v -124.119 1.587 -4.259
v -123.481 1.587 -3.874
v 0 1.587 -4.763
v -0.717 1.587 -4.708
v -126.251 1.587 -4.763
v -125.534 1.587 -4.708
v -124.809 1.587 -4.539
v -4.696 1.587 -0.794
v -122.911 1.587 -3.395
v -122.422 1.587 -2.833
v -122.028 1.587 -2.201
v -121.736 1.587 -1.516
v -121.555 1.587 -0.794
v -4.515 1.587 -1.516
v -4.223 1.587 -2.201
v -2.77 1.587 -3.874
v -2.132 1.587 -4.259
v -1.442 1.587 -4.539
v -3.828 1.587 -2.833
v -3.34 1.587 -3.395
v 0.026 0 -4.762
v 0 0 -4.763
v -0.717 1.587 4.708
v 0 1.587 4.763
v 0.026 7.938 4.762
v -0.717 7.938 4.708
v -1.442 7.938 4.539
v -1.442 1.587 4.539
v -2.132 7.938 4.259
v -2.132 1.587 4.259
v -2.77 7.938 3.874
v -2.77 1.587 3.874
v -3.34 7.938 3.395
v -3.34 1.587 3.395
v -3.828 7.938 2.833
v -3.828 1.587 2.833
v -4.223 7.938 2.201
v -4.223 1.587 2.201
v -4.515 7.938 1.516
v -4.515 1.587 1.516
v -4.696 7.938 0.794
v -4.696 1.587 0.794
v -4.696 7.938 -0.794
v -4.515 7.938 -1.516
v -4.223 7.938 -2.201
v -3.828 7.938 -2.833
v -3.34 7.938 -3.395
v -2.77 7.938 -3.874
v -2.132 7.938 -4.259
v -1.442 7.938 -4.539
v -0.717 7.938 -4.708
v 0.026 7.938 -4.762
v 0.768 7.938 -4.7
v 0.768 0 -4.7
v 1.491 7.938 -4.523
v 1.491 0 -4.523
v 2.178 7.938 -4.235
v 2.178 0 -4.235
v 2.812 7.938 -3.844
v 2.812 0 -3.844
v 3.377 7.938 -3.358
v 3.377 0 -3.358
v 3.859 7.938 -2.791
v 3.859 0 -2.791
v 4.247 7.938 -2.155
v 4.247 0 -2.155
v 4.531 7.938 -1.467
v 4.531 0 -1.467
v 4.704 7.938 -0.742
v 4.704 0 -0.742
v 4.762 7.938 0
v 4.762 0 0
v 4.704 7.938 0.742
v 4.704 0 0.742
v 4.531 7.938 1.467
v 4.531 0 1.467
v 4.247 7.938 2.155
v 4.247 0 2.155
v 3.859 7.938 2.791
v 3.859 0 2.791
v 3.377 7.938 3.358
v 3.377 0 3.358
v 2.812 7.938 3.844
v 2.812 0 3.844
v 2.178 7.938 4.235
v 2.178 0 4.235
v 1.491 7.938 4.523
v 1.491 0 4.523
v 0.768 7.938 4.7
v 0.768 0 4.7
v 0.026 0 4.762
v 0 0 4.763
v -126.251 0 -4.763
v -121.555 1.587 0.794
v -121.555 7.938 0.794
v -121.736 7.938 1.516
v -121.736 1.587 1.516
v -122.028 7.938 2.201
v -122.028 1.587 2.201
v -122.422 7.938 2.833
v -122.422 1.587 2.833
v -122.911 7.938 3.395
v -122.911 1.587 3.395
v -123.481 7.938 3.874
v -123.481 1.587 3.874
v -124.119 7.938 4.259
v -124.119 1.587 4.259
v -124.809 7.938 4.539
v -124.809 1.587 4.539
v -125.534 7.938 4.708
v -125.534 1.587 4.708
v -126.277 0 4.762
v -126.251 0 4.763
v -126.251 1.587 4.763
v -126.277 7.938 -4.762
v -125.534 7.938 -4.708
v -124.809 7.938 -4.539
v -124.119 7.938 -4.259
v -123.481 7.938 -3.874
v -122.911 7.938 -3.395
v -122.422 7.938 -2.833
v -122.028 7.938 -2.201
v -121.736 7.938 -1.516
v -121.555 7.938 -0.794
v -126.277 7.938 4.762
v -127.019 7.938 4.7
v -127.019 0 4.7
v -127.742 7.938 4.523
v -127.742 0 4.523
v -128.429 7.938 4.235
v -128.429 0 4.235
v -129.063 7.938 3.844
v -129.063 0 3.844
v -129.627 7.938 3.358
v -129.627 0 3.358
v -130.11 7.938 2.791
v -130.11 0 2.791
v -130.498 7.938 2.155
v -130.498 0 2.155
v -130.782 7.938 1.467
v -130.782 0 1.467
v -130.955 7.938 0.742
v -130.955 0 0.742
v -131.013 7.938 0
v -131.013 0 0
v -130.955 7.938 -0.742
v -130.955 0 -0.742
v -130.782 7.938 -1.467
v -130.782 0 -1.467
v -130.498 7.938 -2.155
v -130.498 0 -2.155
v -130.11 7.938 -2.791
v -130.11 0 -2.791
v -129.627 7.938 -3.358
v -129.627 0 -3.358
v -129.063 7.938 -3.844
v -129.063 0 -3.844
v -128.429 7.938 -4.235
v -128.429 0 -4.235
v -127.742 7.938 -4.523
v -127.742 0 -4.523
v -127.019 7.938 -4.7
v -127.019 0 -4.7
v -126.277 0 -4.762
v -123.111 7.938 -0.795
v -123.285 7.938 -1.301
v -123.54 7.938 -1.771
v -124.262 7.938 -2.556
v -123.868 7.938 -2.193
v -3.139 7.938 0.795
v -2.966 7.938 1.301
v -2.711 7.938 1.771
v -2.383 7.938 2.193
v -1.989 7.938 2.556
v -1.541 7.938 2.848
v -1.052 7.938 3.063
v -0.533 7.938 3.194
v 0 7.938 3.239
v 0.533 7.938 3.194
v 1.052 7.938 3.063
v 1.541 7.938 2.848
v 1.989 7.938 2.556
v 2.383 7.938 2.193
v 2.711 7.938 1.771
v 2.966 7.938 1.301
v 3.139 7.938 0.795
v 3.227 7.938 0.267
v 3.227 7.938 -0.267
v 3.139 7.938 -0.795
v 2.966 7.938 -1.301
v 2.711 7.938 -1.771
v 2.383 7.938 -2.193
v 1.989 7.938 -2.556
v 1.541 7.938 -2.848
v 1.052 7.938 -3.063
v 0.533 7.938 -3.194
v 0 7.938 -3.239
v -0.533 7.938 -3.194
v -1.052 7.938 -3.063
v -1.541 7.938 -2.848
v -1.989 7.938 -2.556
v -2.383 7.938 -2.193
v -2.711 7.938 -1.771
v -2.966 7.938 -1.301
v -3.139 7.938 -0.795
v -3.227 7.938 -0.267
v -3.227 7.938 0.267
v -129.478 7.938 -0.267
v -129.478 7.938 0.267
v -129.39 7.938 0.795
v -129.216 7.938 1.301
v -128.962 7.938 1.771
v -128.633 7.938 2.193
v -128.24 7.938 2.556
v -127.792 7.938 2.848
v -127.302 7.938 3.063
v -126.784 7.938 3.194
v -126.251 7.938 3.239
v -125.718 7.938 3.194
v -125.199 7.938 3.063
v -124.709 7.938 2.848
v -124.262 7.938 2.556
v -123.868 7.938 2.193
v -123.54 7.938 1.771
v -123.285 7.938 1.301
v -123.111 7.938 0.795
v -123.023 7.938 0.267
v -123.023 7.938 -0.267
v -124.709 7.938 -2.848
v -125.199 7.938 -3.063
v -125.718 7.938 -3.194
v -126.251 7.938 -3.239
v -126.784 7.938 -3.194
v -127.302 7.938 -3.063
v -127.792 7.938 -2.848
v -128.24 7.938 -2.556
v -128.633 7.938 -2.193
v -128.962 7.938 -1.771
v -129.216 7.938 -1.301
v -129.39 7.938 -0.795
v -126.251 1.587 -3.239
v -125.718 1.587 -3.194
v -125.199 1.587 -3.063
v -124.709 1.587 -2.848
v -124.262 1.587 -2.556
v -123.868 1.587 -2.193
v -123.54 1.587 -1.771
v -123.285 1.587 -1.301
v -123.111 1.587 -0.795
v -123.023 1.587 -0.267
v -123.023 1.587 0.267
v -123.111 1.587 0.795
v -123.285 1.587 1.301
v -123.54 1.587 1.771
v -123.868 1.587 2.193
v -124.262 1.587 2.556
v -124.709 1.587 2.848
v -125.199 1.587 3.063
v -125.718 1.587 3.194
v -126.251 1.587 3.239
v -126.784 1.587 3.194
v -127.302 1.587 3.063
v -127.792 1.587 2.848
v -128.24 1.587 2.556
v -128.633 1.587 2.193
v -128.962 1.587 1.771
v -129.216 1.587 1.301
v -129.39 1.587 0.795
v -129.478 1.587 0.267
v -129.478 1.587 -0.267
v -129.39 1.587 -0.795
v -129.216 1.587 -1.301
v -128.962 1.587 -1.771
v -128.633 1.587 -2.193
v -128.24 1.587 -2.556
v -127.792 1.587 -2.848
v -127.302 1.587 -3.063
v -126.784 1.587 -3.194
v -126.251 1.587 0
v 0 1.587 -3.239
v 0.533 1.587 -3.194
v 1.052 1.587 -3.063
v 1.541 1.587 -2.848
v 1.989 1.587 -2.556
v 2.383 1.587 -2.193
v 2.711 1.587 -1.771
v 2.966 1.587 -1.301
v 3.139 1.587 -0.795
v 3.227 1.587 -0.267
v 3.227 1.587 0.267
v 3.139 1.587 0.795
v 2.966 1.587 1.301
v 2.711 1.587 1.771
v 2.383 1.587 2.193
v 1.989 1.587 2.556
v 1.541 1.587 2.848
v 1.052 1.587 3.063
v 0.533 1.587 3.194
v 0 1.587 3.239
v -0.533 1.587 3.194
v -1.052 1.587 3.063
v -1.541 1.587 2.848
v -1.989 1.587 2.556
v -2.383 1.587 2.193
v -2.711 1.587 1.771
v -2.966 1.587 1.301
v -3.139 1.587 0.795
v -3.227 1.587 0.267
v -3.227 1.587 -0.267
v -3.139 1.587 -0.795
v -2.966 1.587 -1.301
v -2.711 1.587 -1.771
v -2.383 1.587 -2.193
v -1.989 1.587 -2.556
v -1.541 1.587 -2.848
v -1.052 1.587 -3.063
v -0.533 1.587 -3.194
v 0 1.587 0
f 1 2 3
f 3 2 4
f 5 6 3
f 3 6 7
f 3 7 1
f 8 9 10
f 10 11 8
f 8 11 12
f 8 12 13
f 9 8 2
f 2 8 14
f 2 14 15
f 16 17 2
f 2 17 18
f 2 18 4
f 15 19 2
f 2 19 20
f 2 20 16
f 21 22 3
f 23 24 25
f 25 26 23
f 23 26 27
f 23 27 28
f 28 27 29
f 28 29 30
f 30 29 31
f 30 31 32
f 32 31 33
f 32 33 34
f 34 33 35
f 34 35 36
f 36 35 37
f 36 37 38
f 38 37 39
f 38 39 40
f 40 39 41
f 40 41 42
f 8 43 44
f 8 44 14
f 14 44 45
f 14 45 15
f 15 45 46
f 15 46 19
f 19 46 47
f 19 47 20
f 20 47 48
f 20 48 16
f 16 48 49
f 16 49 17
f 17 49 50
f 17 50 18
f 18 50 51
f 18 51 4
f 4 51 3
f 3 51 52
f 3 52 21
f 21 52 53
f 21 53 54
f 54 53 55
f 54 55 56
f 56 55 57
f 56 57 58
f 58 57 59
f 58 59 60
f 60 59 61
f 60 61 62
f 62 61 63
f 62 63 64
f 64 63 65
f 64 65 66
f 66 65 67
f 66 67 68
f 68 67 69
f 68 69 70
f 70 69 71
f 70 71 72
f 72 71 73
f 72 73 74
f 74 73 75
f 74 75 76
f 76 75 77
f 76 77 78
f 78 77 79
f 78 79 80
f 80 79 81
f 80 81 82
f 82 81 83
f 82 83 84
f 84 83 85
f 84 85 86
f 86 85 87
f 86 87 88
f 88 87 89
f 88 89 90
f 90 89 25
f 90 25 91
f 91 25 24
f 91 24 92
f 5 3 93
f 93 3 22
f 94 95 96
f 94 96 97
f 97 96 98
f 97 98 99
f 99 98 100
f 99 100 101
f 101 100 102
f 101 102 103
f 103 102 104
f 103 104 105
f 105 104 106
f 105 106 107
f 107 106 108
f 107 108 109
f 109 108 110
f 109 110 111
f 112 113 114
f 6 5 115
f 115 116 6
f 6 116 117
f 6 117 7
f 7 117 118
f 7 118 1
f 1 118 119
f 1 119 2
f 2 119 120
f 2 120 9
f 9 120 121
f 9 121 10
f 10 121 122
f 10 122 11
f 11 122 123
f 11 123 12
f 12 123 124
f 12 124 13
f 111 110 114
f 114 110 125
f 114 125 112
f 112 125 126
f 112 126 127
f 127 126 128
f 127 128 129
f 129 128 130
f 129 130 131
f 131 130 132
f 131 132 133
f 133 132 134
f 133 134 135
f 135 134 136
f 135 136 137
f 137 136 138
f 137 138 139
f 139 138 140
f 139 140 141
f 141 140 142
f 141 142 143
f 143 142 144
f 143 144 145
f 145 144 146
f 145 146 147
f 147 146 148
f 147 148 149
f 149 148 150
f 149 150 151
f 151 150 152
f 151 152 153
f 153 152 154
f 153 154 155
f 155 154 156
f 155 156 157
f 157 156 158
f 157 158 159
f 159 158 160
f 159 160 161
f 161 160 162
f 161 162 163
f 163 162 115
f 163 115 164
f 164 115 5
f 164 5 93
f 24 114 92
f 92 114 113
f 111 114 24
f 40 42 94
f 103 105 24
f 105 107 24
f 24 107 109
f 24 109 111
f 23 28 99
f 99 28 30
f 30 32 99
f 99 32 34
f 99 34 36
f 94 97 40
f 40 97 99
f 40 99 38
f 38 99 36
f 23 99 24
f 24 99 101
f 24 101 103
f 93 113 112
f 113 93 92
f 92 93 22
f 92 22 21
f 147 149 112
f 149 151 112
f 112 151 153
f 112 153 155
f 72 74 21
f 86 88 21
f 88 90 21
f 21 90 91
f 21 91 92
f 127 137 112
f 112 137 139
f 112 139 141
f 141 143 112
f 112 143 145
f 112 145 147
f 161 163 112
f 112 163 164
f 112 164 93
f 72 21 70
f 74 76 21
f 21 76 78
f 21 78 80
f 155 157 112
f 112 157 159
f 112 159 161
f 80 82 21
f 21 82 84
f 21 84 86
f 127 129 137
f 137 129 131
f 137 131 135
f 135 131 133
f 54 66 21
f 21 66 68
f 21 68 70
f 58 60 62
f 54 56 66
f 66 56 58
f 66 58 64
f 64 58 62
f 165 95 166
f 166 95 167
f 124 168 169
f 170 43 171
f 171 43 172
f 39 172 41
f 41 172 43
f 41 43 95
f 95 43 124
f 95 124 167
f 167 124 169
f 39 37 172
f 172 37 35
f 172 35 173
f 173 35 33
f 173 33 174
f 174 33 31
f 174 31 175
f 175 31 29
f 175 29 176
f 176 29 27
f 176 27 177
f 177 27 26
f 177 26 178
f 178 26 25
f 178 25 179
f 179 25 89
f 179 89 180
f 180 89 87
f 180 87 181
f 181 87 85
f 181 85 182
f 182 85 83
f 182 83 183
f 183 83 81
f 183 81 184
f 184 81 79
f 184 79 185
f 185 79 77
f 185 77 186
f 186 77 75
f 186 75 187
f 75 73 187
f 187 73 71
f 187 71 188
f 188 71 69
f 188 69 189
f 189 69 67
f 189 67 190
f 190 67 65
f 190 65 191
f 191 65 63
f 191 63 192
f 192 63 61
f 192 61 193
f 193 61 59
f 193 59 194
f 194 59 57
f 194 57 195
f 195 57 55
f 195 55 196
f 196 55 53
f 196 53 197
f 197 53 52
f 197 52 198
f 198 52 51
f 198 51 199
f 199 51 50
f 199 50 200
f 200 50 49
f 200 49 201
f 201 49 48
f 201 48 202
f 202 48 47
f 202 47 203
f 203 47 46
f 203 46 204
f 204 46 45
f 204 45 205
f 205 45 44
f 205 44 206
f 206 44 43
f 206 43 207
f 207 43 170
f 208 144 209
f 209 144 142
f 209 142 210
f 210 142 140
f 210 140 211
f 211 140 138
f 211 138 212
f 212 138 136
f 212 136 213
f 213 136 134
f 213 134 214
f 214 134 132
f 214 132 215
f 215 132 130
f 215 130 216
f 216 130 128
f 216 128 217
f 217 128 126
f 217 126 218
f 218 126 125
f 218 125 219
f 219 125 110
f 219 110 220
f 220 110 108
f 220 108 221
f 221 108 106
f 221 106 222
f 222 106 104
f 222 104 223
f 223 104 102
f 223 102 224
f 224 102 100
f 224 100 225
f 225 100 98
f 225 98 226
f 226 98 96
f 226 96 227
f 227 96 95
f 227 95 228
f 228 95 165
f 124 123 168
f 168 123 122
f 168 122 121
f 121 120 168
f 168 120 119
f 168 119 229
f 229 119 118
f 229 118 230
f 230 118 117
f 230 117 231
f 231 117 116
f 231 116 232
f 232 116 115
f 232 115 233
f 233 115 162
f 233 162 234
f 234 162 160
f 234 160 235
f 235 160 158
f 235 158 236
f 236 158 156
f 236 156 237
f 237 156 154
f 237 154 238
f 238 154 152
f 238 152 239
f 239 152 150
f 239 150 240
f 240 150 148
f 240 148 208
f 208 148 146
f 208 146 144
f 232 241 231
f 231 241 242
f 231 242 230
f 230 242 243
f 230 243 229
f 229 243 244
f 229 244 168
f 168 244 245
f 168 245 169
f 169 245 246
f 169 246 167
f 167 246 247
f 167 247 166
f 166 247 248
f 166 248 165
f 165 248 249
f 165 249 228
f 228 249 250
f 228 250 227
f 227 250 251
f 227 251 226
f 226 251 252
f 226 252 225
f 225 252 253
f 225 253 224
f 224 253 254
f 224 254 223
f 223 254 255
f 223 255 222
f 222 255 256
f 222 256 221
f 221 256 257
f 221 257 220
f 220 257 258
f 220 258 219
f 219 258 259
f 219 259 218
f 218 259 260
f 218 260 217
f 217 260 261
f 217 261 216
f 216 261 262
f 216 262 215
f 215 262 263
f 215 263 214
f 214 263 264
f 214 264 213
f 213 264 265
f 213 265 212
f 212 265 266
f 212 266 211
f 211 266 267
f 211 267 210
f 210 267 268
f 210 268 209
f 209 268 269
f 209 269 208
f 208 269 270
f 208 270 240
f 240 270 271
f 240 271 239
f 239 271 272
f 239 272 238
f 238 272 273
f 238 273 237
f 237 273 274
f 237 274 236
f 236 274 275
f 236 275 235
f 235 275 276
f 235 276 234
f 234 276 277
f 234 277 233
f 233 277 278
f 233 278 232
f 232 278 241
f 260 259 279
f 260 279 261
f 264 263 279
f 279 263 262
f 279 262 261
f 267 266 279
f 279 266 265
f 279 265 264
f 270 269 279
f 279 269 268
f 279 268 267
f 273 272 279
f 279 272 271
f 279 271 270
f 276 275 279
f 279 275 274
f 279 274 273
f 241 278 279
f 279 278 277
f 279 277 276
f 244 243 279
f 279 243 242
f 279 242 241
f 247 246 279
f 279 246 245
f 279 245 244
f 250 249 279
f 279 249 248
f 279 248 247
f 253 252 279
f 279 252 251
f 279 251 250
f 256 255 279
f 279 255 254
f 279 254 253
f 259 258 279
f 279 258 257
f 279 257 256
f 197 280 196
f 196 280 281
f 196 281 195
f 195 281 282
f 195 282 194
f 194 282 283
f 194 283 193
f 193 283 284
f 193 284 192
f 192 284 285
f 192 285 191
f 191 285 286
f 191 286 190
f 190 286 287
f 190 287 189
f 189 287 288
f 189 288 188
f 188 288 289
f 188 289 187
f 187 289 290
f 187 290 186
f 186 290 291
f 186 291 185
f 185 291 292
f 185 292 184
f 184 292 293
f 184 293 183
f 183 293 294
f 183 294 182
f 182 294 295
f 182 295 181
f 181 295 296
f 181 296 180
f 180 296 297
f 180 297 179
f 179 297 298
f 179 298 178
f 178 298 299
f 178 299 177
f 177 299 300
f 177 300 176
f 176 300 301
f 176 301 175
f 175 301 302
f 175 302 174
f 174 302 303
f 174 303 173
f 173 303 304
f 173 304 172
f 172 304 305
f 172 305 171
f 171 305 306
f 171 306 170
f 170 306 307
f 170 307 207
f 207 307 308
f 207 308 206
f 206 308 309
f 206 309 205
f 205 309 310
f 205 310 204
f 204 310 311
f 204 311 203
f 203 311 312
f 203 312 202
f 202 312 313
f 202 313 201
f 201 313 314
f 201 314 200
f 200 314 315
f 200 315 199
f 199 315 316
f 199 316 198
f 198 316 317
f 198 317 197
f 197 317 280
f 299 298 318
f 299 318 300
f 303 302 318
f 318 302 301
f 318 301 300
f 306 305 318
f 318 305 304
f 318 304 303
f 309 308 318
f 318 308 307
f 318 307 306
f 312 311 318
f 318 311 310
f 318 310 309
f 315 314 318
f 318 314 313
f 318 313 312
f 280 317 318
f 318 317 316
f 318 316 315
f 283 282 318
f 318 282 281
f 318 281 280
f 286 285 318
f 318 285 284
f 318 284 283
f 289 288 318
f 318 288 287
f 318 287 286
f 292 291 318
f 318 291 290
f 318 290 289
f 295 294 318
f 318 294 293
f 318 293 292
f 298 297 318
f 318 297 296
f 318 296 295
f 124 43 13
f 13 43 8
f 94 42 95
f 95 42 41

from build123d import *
from build123d.topology import SkipClean

# Parameters (mm, degrees)
BOSS_EXTRUDE1_DEPTH                  = 1.5875
SKETCH2_R                            = 4.7625
SKETCH2_R_2                          = 3.2385
BOSS_EXTRUDE2_DEPTH                  = 6.35
BOSS_EXTRUDE3_REACH                  = 158.74
BOSS_EXTRUDE3_END_RADIUS             = 4.7625
BOSS_EXTRUDE3_START                  = -25.4
SKETCH3_W                            = 1.5875
SKETCH3_H                            = 6.35
BOSS_EXTRUDE3_DIRECTION_2_REACH      = 158.74
BOSS_EXTRUDE3_DIRECTION_2_END_RADIUS = 4.7625


with BuildPart() as part:
    # Sketch1 → Boss-Extrude1 (new body)
    with BuildSketch(Plane(origin=(0, 0, 0), x_dir=(1, 0, 0), z_dir=(0, 1, 0))):
        with BuildLine():
            Line((0, -4.7625), (-126.2507, -4.7625))
            ThreePointArc((-126.2507, -4.7625), (-131.0132, 0), (-126.2507, 4.7625))
            Line((-126.2507, 4.7625), (0, 4.7625))
            ThreePointArc((0, 4.7625), (4.7625, 0), (0, -4.7625))
        make_face()
    extrude(amount=BOSS_EXTRUDE1_DEPTH)

    # Sketch2 → Boss-Extrude2 (add)
    # profile 1 of 2: a face of its own
    with SkipClean():  # the faces are left unmerged after this step: merging them gives an invalid solid
        with BuildSketch(Plane(origin=(0, 1.5875, 0), x_dir=(1, 0, 0), z_dir=(0, 1, 0))):
            with Locations(Location((-126.2507, 0, 0), (0, 0, 270))):
                Circle(SKETCH2_R)
            with Locations(Location((-126.2507, 0, 0), (0, 0, 270))):
                Circle(SKETCH2_R_2, mode=Mode.SUBTRACT)
        # profile 2 of 2: a face of its own
        with BuildSketch(Plane(origin=(0, 1.5875, 0), x_dir=(1, 0, 0), z_dir=(0, 1, 0))):
            with Locations(Location((0, 0, 0), (0, 0, 270))):
                Circle(SKETCH2_R)
            with Locations(Location((0, 0, 0), (0, 0, 270))):
                Circle(SKETCH2_R_2, mode=Mode.SUBTRACT)
        extrude(amount=BOSS_EXTRUDE2_DEPTH)

    # Boss-Extrude3: up to this cylinder (the profile starts outside it)
    with SkipClean():  # the faces are left unmerged after this step: merging them gives an invalid solid
        boss_extrude3_end = Plane(origin=(-126.2507, 4.7625, 0), z_dir=(0, -1, 0)) * Cylinder(BOSS_EXTRUDE3_END_RADIUS, 328.005, mode=Mode.PRIVATE)
        # Sketch3 → Boss-Extrude3 (add, up to the surface)
        with BuildSketch(Plane(origin=(0, 0, 0), x_dir=(0, 0, -1), z_dir=(1, 0, 0)).offset(BOSS_EXTRUDE3_START), mode=Mode.PRIVATE) as boss_extrude3_sk1:
            with Locations((0, 4.7625)):
                Rectangle(SKETCH3_W, SKETCH3_H)
        boss_extrude3_tool1 = extrude(boss_extrude3_sk1.sketch, amount=-BOSS_EXTRUDE3_REACH, mode=Mode.PRIVATE) - boss_extrude3_end
        add(boss_extrude3_tool1.solids().sort_by_distance((-25.4, 4.7625, 0))[0])
    add(part.part.scale(1), mode=Mode.REPLACE)  # the faces are merged on a copy

    # Boss-Extrude3 direction 2: up to this cylinder (the profile starts outside it)
    boss_extrude3_direction_2_end = Plane(origin=(0, 4.7625, 0), z_dir=(0, -1, 0)) * Cylinder(BOSS_EXTRUDE3_DIRECTION_2_END_RADIUS, 328.005, mode=Mode.PRIVATE)
    # Sketch3 → Boss-Extrude3 direction 2 (add, up to the surface)
    with BuildSketch(Plane(origin=(0, 0, 0), x_dir=(0, 0, -1), z_dir=(1, 0, 0)).offset(BOSS_EXTRUDE3_START), mode=Mode.PRIVATE) as boss_extrude3_direction_2_sk1:
        with Locations((0, 4.7625)):
            Rectangle(SKETCH3_W, SKETCH3_H)
    boss_extrude3_direction_2_tool1 = extrude(boss_extrude3_direction_2_sk1.sketch, amount=BOSS_EXTRUDE3_DIRECTION_2_REACH, mode=Mode.PRIVATE) - boss_extrude3_direction_2_end
    add(boss_extrude3_direction_2_tool1.solids().sort_by_distance((-25.4, 4.7625, 0))[0])


solid = part.part
